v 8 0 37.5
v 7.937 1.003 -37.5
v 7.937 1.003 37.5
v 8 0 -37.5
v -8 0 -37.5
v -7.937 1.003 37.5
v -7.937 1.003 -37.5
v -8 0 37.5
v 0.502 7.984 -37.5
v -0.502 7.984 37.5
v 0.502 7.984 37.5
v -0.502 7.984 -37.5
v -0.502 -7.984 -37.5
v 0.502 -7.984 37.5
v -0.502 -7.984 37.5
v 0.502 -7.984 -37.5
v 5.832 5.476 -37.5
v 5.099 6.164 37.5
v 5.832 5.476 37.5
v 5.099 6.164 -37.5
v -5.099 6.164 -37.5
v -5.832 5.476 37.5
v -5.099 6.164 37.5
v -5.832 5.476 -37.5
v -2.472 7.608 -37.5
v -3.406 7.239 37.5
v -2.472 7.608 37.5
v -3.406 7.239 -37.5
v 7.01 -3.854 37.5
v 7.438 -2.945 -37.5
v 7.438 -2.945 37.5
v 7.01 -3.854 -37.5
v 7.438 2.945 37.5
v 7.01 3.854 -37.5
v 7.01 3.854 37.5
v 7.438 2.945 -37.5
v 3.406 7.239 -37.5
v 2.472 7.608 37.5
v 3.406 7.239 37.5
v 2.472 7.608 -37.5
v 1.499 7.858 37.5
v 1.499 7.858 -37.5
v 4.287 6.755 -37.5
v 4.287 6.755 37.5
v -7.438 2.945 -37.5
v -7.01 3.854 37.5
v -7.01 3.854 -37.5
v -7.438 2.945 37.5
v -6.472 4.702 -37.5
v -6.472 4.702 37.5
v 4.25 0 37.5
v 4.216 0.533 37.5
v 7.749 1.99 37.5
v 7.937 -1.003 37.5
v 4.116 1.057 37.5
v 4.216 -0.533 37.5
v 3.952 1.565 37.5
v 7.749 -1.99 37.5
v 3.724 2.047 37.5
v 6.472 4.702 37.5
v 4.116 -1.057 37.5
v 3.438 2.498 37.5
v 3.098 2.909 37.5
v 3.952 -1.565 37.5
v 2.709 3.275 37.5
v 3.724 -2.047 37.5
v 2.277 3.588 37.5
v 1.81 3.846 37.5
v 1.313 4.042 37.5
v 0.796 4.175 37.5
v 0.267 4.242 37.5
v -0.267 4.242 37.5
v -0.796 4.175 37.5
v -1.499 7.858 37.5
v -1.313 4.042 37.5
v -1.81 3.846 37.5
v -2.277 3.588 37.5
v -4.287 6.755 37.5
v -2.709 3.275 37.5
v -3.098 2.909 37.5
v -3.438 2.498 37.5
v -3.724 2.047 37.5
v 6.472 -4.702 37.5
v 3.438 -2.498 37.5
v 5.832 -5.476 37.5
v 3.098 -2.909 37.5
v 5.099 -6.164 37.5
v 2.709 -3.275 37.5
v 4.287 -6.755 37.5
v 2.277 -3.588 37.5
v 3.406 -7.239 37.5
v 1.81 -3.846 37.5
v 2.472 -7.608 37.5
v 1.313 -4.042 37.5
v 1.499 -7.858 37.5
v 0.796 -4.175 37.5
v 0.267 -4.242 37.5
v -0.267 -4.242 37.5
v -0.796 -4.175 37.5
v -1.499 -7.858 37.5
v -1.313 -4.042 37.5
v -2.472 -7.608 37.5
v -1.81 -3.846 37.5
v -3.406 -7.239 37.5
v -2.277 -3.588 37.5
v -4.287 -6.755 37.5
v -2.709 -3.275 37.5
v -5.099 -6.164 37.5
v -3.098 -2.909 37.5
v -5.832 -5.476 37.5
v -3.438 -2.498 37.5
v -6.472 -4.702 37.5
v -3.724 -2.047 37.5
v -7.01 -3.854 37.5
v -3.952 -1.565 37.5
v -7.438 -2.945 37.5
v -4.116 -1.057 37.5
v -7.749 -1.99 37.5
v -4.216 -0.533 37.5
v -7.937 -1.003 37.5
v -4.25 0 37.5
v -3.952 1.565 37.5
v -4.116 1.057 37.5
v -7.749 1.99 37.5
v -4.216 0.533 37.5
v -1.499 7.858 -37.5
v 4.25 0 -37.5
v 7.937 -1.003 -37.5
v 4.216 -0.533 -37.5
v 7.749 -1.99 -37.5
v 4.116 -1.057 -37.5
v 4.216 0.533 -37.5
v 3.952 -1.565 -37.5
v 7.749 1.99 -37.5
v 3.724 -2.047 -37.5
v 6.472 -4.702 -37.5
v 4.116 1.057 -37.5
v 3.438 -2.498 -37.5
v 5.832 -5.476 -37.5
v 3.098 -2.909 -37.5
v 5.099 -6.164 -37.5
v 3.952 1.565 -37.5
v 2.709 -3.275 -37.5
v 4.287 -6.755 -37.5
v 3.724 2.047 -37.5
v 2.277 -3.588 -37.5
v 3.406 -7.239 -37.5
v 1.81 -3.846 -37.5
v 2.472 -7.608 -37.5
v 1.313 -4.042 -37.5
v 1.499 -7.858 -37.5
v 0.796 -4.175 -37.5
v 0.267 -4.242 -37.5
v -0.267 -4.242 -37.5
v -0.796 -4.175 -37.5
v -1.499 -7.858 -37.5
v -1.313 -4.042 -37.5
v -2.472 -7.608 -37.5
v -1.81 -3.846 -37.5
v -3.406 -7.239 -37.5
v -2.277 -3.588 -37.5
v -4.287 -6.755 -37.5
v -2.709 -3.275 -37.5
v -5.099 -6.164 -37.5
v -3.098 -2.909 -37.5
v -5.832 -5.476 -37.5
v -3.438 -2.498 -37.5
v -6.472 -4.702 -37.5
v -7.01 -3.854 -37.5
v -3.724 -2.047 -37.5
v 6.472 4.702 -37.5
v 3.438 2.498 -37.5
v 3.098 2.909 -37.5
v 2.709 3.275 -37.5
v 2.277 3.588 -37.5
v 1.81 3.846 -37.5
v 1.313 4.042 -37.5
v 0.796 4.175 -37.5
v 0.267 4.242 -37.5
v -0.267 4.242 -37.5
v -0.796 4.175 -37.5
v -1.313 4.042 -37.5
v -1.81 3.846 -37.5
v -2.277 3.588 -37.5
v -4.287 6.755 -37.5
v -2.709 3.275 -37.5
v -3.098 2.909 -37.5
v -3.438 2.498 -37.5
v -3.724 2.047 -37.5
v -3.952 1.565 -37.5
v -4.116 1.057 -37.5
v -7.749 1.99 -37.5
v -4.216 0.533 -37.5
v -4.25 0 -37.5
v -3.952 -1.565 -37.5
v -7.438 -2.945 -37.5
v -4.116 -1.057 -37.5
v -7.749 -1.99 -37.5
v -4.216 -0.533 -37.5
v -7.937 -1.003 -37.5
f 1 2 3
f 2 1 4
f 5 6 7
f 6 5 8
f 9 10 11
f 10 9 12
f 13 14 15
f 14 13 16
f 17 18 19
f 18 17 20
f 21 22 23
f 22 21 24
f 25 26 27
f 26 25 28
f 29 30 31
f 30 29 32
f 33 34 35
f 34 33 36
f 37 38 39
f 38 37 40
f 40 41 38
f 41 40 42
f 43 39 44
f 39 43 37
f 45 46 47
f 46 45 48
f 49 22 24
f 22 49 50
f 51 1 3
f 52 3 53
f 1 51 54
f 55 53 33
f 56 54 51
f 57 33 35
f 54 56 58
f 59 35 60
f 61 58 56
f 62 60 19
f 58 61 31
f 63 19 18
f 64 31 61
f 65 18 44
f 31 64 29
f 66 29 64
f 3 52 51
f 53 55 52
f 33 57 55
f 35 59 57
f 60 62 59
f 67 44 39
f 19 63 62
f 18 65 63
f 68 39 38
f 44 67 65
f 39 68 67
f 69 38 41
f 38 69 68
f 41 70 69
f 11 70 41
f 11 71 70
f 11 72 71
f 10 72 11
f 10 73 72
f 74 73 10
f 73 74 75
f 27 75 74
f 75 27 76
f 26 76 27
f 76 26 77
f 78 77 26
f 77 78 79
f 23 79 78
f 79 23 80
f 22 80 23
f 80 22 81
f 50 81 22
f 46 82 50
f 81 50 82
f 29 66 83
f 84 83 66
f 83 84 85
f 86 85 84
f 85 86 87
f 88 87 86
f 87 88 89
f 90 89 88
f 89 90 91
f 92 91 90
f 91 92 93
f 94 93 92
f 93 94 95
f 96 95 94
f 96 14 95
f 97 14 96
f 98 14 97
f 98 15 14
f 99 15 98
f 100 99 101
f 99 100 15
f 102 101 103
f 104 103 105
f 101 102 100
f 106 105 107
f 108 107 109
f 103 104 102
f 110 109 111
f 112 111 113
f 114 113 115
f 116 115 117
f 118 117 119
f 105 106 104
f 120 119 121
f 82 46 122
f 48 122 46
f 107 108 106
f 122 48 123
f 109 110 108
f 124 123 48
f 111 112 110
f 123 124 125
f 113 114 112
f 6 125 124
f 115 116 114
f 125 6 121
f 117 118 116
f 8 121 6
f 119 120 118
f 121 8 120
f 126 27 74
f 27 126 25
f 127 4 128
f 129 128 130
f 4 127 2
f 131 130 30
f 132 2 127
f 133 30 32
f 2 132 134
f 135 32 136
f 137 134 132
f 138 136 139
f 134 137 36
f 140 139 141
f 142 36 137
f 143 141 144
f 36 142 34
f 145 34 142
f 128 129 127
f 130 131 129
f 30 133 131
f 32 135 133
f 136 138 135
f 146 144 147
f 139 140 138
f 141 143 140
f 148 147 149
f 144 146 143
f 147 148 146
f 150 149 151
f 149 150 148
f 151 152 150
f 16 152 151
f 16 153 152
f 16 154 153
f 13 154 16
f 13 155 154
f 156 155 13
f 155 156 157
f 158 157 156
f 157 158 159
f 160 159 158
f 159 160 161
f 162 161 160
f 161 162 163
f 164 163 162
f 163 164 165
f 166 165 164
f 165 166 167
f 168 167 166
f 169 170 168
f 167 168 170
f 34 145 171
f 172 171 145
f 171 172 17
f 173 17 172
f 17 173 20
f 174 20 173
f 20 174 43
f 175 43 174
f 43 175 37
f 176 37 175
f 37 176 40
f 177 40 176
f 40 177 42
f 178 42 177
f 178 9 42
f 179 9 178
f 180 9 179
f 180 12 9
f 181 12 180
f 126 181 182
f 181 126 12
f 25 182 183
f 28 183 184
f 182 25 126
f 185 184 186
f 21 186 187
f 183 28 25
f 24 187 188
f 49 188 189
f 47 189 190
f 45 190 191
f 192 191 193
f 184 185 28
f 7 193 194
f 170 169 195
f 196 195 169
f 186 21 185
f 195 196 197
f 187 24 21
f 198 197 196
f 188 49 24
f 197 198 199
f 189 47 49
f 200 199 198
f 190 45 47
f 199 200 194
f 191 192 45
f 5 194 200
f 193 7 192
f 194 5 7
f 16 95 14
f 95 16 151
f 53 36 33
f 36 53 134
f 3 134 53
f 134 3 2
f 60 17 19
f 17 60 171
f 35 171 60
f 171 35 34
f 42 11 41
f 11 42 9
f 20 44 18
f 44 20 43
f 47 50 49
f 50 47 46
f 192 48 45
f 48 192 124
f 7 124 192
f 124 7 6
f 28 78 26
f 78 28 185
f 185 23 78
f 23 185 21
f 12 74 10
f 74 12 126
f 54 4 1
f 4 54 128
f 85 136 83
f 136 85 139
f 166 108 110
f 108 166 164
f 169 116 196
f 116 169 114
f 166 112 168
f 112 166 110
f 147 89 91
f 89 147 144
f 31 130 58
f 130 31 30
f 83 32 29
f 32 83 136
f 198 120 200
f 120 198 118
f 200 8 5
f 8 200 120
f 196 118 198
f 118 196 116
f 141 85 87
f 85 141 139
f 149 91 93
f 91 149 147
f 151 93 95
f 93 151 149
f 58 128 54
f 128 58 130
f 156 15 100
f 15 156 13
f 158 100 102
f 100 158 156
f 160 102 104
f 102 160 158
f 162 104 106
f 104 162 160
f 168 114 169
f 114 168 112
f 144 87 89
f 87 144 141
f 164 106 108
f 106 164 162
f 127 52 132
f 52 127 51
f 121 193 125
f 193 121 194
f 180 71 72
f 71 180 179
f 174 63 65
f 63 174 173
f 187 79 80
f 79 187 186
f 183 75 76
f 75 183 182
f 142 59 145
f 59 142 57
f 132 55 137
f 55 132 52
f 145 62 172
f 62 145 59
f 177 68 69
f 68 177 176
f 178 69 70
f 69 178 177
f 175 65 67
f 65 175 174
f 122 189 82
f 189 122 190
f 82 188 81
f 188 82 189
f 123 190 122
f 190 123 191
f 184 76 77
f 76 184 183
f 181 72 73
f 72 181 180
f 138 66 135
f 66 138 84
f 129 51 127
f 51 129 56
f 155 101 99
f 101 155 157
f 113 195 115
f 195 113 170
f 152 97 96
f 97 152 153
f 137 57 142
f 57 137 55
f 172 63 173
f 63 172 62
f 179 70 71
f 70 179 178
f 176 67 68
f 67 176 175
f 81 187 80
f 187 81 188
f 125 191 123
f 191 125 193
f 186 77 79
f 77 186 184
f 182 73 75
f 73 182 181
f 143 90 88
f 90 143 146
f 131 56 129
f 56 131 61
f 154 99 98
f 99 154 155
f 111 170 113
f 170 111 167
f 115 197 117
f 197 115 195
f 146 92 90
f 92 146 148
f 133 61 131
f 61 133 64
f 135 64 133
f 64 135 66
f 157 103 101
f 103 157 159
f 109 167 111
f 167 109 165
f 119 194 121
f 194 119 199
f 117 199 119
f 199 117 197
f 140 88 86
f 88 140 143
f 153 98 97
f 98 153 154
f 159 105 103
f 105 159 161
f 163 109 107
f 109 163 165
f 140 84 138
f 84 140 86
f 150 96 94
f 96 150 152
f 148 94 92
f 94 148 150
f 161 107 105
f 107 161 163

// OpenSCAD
$fn = 50;


difference() {
	union() {
		translate(v = [0, 0, -37.5000000000]) {
			cylinder(h = 75, r = 8.0000000000);
		}
	}
	union() {
		translate(v = [0, 0, -100.0000000000]) {
			cylinder(h = 200, r = 4.2500000000);
		}
	}
}
